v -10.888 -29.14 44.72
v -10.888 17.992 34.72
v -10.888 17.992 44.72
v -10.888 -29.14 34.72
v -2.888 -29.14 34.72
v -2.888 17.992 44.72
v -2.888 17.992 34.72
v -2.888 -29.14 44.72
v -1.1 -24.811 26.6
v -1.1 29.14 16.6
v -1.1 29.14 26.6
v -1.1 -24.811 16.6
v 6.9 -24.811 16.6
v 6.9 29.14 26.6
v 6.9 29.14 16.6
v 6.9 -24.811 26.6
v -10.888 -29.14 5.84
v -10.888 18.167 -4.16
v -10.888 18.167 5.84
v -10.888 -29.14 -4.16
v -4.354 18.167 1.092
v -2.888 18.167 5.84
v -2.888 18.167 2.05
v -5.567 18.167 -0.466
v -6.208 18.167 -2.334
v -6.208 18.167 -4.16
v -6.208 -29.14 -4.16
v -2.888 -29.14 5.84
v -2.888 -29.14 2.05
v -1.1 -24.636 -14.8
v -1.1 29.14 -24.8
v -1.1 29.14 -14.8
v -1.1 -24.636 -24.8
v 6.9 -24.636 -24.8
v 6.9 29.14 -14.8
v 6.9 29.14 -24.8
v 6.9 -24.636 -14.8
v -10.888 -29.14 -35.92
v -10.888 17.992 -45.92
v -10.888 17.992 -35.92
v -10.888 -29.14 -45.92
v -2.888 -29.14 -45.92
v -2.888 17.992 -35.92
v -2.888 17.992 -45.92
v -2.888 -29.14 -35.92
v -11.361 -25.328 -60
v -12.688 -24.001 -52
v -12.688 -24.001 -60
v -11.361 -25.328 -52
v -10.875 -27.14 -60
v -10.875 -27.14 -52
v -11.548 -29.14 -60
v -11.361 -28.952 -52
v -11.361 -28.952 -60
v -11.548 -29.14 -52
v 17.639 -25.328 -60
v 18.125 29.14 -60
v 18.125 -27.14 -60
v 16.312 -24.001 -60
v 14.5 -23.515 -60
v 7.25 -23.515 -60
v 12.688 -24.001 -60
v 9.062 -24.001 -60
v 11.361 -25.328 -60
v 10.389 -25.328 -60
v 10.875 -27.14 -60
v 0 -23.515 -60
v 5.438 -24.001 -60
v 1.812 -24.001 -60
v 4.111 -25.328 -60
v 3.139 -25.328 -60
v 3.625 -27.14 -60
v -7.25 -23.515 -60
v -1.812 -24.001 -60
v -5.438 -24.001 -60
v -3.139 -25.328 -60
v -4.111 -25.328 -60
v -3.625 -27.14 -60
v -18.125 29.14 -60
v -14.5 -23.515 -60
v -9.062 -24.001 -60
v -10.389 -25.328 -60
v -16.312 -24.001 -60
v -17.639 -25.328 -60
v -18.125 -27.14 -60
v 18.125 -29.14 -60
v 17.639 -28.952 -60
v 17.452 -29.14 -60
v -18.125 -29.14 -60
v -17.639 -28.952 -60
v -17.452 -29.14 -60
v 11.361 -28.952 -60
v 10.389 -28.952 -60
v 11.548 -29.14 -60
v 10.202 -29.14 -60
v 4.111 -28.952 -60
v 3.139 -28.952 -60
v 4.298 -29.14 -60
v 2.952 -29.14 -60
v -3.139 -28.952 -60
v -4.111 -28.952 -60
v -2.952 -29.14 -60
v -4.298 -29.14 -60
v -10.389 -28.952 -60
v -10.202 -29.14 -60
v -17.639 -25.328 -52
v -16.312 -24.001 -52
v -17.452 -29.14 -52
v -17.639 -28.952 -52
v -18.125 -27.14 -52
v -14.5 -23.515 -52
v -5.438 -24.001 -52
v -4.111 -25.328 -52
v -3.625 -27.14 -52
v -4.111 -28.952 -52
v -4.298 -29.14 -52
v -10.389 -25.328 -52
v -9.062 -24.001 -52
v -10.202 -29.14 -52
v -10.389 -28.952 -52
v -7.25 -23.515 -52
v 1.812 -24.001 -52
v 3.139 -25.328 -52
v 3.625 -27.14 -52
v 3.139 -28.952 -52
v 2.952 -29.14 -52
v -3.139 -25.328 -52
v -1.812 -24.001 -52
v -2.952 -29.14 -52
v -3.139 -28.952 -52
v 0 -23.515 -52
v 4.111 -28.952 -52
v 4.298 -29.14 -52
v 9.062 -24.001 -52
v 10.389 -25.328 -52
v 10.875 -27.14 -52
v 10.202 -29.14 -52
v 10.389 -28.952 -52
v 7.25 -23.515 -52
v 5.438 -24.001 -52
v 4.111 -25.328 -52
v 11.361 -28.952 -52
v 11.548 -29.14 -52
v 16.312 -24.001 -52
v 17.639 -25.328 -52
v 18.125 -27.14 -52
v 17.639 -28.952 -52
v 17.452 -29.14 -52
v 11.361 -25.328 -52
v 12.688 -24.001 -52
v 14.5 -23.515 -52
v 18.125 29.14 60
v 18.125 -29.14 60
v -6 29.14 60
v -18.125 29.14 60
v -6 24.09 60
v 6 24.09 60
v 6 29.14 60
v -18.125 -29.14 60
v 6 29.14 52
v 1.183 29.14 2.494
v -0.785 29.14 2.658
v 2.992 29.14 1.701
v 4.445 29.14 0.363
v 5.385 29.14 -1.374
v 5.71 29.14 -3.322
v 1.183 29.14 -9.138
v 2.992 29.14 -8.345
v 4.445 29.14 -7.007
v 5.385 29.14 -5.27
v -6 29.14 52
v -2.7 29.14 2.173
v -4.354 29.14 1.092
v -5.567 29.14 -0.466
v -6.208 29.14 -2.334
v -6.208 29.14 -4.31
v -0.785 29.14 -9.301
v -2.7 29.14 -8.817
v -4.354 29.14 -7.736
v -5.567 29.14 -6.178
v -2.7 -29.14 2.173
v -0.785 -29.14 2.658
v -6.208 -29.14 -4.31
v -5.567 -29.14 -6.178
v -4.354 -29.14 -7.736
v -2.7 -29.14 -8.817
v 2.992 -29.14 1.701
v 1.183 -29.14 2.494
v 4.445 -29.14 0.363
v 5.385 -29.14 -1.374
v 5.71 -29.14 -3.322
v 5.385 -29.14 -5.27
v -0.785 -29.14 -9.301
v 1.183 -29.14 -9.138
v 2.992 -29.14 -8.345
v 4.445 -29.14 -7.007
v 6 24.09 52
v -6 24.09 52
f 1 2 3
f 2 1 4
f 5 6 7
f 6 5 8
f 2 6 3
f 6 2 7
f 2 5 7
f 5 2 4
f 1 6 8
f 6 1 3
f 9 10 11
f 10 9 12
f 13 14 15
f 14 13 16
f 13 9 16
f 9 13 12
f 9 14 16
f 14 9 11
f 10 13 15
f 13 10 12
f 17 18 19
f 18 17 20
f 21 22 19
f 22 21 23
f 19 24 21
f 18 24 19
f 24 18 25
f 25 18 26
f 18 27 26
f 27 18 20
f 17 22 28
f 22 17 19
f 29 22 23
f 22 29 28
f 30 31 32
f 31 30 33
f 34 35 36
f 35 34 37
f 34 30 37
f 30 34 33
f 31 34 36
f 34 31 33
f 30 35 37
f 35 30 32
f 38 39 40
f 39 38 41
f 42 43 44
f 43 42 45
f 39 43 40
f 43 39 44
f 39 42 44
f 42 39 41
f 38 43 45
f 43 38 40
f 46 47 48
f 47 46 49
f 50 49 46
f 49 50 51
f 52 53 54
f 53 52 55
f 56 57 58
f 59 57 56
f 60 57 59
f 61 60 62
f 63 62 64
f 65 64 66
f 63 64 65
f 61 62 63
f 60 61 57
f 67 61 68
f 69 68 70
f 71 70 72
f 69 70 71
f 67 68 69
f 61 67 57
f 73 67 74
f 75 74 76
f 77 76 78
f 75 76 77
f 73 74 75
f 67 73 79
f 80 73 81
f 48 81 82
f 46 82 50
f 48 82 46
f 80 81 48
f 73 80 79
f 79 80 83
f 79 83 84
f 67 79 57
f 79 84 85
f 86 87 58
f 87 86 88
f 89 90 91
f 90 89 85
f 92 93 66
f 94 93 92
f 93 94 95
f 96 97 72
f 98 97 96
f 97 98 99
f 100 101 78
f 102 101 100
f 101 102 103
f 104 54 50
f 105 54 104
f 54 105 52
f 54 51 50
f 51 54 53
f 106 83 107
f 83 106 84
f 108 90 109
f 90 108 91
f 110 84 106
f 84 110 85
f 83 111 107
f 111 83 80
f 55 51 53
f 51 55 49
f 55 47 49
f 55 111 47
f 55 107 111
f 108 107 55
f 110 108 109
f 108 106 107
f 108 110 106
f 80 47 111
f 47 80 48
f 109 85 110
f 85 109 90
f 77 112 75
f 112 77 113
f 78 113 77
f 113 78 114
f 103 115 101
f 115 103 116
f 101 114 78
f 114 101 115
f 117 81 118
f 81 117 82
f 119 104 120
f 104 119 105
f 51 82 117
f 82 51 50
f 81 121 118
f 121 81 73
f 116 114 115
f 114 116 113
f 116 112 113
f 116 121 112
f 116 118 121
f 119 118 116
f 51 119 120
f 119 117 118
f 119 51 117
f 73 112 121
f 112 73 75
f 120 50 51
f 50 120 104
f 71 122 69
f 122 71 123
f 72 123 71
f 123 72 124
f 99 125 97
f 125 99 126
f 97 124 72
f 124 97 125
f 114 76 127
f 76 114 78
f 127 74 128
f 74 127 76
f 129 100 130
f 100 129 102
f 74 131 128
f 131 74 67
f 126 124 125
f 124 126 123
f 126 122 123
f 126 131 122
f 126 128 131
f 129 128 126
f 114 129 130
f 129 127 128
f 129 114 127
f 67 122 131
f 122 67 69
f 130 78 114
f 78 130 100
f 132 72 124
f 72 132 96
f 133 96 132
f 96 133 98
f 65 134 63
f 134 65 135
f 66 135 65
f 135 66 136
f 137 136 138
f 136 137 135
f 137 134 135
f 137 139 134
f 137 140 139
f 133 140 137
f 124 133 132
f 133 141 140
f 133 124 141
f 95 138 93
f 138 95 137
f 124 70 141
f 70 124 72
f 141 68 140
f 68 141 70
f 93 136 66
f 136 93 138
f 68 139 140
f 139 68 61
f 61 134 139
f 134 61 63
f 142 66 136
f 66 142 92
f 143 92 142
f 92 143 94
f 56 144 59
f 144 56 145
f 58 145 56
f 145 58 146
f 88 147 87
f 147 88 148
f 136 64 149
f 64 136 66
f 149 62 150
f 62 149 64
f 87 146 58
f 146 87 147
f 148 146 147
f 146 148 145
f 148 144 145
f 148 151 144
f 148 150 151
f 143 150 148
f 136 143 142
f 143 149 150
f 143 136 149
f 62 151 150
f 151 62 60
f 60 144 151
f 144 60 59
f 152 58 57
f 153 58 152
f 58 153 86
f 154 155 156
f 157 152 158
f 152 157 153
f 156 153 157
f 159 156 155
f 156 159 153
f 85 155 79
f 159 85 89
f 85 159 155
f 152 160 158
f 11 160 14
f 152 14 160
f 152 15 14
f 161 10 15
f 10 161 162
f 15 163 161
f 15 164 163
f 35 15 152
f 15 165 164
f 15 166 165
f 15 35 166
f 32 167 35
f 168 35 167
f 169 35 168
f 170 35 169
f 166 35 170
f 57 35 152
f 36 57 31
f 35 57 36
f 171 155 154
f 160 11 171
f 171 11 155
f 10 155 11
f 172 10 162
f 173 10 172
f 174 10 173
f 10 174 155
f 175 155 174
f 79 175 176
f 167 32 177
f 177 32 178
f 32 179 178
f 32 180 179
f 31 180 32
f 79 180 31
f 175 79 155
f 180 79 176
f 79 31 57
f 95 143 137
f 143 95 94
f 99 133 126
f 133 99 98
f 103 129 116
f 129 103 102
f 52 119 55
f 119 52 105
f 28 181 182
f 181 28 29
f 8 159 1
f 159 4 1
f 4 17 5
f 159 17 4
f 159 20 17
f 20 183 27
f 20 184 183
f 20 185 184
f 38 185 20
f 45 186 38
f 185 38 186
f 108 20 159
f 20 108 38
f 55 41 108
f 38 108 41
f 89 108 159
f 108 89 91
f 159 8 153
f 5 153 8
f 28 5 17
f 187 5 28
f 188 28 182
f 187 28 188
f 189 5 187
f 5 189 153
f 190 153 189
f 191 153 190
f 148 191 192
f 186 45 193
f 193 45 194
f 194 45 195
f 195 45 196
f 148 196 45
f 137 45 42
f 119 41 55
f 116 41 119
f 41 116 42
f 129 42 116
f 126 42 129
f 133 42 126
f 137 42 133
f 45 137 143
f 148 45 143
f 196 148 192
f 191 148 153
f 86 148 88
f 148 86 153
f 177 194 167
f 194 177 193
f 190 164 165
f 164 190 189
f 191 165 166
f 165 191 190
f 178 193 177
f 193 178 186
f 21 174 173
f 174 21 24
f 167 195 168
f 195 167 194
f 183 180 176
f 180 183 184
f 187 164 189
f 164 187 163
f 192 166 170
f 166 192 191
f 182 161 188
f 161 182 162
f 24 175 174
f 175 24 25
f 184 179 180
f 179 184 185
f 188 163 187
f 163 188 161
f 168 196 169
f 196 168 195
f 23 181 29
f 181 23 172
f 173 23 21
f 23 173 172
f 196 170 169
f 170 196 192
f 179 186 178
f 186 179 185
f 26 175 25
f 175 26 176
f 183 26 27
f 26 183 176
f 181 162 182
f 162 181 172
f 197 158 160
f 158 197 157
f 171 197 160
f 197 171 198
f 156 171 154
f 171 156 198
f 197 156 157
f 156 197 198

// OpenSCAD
/* doodle-meta {"version":1,"parameters":{"width":{"label":"Overall width","description":"Changes the body width","unit":"mm","feature":"body_width"},"depth":{"label":"Overall depth","description":"Changes the body depth","unit":"mm","feature":"body_depth"},"height":{"label":"Overall height","description":"Changes the body height","unit":"mm","feature":"body_height"},"thickness":{"label":"Plate thickness","description":"Changes the thickness of the plate","unit":"mm","feature":"body_thickness"},"hole_diameter":{"label":"Central hole diameter","description":"Changes the diameter of the central hole","unit":"mm","feature":"central_hole"},"slot_width":{"label":"Slot width","description":"Changes the width of the mounting slots","unit":"mm","feature":"slot_row"},"slot_height":{"label":"Slot height","description":"Changes the height of the mounting slots","unit":"mm","feature":"slot_row"},"slot_count":{"label":"Slot count","description":"Changes the number of mounting slots","unit":"count","feature":"slot_row"}},"features":{"body_width":{"kind":"dimension","axis":"x","label":"Overall width"},"body_depth":{"kind":"dimension","axis":"y","label":"Overall depth"},"body_height":{"kind":"dimension","axis":"z","label":"Overall height"},"body_thickness":{"kind":"dimension","axis":"y","label":"Plate thickness"},"central_hole":{"kind":"region","label":"Central hole","min":[{"parameter":"width","scale":0.492,"offset":0},{"parameter":"depth","scale":0.5,"offset":0},{"parameter":"height","scale":0.443,"offset":0}],"max":[{"parameter":"width","scale":0.492,"offset":0},{"parameter":"depth","scale":0.5,"offset":0},{"parameter":"height","scale":0.557,"offset":0}]},"slot_row":{"kind":"region","label":"Slot row","min":[{"parameter":"width","scale":0.307,"offset":0},{"parameter":"depth","scale":0.5,"offset":0},{"parameter":"height","scale":0.159,"offset":0}],"max":[{"parameter":"width","scale":0.579,"offset":0},{"parameter":"depth","scale":0.5,"offset":0},{"parameter":"height","scale":0.831,"offset":0}]}}} */

// Parameters
width = 36.25;
depth = 58.28;
height = 120.0;
thickness = 6.0;
hole_diameter = 12.0;
slot_width = 8.0;
slot_height = 10.0;
slot_count = 5;

// Derived constants
eps = 0.1;

// Central hole position from top view centroid (u=0.492, v=0.557)
// Top view: u->X, v->Y (v=0 is back/+Y, v=1 is front/-Y)
// X = u * width = 0.492 * width
// Y = (1 - v) * depth = (1 - 0.557) * depth = 0.443 * depth
hole_x = 0.492 * width;
hole_y = (1 - 0.557) * depth;

// Slot positions from right view centroids
// Right view: u->Y (u=0 is front/-Y), v->Z (v=0 is bottom)
// But we need X positions for the slots. The right view shows Y-Z plane.
// The slots are at specific X positions (zig-zag) and Z positions.
// From the right view centroids, u gives Y position, v gives Z position.
// The X positions (zig-zag) come from the front view interpretation.
// Right view centroids: (u,v) = (0.307,0.831), (0.576,0.68), (0.31,0.507), (0.579,0.335), (0.307,0.159)
// u in right view maps to Y: Y = u * depth
// v in right view maps to Z: Z = v * height

// Slot Y positions (from right view u values)
slot_y_positions = [0.307, 0.576, 0.31, 0.579, 0.307];
// Slot Z positions (from right view v values)
slot_z_positions = [0.831, 0.68, 0.507, 0.335, 0.159];

// Slot X positions (zig-zag pattern, centered in width)
slot_x_offsets = [0.31, 0.58, 0.31, 0.58, 0.31];

// Scalloped bottom edge parameters
scallop_count = 5;
scallop_depth = 4.0;
scallop_radius = (width / scallop_count) / 2.0;
scallop_height = 8.0; // Only affect bottom portion

// Concave notch at top
notch_width = 12.0;
notch_depth = 5.0;
notch_height = 8.0; // Only affect top portion

difference() {
    // Base Plate - centered at origin
    translate([0, 0, 0])
        cube([width, depth, height], center=true);

    // Central Hole (Top View -> cuts along Y-axis through the plate)
    translate([hole_x - width/2, 0, hole_y - depth/2])
        rotate([90, 0, 0])
            cylinder(d=hole_diameter, h=depth+2*eps, center=true);

    // Slot Row (Right View -> cuts along Y-axis through the plate)
    for (i = [0 : slot_count - 1]) {
        translate([
            (slot_x_offsets[i] - 0.5) * width,
            (slot_y_positions[i] - 0.5) * depth,
            (slot_z_positions[i] - 0.5) * height
        ])
            rotate([90, 0, 0])
                cube([slot_width, slot_height, depth+2*eps], center=true);
    }

    // Concave notch at top edge (cuts into Y from back, limited Z height)
    translate([0, depth/2 - notch_depth/2, height/2 - notch_height/2])
        cube([notch_width, notch_depth+eps, notch_height], center=true);

    // Scalloped bottom edge (cuts into Y from front, limited Z height)
    for (i = [0 : scallop_count - 1]) {
        translate([
            (i + 0.5) * (width / scallop_count) - width/2,
            -depth/2 + scallop_depth/2,
            -height/2 + scallop_height/2
        ])
            cylinder(d=scallop_radius*2, h=scallop_height, center=true);
    }
}
